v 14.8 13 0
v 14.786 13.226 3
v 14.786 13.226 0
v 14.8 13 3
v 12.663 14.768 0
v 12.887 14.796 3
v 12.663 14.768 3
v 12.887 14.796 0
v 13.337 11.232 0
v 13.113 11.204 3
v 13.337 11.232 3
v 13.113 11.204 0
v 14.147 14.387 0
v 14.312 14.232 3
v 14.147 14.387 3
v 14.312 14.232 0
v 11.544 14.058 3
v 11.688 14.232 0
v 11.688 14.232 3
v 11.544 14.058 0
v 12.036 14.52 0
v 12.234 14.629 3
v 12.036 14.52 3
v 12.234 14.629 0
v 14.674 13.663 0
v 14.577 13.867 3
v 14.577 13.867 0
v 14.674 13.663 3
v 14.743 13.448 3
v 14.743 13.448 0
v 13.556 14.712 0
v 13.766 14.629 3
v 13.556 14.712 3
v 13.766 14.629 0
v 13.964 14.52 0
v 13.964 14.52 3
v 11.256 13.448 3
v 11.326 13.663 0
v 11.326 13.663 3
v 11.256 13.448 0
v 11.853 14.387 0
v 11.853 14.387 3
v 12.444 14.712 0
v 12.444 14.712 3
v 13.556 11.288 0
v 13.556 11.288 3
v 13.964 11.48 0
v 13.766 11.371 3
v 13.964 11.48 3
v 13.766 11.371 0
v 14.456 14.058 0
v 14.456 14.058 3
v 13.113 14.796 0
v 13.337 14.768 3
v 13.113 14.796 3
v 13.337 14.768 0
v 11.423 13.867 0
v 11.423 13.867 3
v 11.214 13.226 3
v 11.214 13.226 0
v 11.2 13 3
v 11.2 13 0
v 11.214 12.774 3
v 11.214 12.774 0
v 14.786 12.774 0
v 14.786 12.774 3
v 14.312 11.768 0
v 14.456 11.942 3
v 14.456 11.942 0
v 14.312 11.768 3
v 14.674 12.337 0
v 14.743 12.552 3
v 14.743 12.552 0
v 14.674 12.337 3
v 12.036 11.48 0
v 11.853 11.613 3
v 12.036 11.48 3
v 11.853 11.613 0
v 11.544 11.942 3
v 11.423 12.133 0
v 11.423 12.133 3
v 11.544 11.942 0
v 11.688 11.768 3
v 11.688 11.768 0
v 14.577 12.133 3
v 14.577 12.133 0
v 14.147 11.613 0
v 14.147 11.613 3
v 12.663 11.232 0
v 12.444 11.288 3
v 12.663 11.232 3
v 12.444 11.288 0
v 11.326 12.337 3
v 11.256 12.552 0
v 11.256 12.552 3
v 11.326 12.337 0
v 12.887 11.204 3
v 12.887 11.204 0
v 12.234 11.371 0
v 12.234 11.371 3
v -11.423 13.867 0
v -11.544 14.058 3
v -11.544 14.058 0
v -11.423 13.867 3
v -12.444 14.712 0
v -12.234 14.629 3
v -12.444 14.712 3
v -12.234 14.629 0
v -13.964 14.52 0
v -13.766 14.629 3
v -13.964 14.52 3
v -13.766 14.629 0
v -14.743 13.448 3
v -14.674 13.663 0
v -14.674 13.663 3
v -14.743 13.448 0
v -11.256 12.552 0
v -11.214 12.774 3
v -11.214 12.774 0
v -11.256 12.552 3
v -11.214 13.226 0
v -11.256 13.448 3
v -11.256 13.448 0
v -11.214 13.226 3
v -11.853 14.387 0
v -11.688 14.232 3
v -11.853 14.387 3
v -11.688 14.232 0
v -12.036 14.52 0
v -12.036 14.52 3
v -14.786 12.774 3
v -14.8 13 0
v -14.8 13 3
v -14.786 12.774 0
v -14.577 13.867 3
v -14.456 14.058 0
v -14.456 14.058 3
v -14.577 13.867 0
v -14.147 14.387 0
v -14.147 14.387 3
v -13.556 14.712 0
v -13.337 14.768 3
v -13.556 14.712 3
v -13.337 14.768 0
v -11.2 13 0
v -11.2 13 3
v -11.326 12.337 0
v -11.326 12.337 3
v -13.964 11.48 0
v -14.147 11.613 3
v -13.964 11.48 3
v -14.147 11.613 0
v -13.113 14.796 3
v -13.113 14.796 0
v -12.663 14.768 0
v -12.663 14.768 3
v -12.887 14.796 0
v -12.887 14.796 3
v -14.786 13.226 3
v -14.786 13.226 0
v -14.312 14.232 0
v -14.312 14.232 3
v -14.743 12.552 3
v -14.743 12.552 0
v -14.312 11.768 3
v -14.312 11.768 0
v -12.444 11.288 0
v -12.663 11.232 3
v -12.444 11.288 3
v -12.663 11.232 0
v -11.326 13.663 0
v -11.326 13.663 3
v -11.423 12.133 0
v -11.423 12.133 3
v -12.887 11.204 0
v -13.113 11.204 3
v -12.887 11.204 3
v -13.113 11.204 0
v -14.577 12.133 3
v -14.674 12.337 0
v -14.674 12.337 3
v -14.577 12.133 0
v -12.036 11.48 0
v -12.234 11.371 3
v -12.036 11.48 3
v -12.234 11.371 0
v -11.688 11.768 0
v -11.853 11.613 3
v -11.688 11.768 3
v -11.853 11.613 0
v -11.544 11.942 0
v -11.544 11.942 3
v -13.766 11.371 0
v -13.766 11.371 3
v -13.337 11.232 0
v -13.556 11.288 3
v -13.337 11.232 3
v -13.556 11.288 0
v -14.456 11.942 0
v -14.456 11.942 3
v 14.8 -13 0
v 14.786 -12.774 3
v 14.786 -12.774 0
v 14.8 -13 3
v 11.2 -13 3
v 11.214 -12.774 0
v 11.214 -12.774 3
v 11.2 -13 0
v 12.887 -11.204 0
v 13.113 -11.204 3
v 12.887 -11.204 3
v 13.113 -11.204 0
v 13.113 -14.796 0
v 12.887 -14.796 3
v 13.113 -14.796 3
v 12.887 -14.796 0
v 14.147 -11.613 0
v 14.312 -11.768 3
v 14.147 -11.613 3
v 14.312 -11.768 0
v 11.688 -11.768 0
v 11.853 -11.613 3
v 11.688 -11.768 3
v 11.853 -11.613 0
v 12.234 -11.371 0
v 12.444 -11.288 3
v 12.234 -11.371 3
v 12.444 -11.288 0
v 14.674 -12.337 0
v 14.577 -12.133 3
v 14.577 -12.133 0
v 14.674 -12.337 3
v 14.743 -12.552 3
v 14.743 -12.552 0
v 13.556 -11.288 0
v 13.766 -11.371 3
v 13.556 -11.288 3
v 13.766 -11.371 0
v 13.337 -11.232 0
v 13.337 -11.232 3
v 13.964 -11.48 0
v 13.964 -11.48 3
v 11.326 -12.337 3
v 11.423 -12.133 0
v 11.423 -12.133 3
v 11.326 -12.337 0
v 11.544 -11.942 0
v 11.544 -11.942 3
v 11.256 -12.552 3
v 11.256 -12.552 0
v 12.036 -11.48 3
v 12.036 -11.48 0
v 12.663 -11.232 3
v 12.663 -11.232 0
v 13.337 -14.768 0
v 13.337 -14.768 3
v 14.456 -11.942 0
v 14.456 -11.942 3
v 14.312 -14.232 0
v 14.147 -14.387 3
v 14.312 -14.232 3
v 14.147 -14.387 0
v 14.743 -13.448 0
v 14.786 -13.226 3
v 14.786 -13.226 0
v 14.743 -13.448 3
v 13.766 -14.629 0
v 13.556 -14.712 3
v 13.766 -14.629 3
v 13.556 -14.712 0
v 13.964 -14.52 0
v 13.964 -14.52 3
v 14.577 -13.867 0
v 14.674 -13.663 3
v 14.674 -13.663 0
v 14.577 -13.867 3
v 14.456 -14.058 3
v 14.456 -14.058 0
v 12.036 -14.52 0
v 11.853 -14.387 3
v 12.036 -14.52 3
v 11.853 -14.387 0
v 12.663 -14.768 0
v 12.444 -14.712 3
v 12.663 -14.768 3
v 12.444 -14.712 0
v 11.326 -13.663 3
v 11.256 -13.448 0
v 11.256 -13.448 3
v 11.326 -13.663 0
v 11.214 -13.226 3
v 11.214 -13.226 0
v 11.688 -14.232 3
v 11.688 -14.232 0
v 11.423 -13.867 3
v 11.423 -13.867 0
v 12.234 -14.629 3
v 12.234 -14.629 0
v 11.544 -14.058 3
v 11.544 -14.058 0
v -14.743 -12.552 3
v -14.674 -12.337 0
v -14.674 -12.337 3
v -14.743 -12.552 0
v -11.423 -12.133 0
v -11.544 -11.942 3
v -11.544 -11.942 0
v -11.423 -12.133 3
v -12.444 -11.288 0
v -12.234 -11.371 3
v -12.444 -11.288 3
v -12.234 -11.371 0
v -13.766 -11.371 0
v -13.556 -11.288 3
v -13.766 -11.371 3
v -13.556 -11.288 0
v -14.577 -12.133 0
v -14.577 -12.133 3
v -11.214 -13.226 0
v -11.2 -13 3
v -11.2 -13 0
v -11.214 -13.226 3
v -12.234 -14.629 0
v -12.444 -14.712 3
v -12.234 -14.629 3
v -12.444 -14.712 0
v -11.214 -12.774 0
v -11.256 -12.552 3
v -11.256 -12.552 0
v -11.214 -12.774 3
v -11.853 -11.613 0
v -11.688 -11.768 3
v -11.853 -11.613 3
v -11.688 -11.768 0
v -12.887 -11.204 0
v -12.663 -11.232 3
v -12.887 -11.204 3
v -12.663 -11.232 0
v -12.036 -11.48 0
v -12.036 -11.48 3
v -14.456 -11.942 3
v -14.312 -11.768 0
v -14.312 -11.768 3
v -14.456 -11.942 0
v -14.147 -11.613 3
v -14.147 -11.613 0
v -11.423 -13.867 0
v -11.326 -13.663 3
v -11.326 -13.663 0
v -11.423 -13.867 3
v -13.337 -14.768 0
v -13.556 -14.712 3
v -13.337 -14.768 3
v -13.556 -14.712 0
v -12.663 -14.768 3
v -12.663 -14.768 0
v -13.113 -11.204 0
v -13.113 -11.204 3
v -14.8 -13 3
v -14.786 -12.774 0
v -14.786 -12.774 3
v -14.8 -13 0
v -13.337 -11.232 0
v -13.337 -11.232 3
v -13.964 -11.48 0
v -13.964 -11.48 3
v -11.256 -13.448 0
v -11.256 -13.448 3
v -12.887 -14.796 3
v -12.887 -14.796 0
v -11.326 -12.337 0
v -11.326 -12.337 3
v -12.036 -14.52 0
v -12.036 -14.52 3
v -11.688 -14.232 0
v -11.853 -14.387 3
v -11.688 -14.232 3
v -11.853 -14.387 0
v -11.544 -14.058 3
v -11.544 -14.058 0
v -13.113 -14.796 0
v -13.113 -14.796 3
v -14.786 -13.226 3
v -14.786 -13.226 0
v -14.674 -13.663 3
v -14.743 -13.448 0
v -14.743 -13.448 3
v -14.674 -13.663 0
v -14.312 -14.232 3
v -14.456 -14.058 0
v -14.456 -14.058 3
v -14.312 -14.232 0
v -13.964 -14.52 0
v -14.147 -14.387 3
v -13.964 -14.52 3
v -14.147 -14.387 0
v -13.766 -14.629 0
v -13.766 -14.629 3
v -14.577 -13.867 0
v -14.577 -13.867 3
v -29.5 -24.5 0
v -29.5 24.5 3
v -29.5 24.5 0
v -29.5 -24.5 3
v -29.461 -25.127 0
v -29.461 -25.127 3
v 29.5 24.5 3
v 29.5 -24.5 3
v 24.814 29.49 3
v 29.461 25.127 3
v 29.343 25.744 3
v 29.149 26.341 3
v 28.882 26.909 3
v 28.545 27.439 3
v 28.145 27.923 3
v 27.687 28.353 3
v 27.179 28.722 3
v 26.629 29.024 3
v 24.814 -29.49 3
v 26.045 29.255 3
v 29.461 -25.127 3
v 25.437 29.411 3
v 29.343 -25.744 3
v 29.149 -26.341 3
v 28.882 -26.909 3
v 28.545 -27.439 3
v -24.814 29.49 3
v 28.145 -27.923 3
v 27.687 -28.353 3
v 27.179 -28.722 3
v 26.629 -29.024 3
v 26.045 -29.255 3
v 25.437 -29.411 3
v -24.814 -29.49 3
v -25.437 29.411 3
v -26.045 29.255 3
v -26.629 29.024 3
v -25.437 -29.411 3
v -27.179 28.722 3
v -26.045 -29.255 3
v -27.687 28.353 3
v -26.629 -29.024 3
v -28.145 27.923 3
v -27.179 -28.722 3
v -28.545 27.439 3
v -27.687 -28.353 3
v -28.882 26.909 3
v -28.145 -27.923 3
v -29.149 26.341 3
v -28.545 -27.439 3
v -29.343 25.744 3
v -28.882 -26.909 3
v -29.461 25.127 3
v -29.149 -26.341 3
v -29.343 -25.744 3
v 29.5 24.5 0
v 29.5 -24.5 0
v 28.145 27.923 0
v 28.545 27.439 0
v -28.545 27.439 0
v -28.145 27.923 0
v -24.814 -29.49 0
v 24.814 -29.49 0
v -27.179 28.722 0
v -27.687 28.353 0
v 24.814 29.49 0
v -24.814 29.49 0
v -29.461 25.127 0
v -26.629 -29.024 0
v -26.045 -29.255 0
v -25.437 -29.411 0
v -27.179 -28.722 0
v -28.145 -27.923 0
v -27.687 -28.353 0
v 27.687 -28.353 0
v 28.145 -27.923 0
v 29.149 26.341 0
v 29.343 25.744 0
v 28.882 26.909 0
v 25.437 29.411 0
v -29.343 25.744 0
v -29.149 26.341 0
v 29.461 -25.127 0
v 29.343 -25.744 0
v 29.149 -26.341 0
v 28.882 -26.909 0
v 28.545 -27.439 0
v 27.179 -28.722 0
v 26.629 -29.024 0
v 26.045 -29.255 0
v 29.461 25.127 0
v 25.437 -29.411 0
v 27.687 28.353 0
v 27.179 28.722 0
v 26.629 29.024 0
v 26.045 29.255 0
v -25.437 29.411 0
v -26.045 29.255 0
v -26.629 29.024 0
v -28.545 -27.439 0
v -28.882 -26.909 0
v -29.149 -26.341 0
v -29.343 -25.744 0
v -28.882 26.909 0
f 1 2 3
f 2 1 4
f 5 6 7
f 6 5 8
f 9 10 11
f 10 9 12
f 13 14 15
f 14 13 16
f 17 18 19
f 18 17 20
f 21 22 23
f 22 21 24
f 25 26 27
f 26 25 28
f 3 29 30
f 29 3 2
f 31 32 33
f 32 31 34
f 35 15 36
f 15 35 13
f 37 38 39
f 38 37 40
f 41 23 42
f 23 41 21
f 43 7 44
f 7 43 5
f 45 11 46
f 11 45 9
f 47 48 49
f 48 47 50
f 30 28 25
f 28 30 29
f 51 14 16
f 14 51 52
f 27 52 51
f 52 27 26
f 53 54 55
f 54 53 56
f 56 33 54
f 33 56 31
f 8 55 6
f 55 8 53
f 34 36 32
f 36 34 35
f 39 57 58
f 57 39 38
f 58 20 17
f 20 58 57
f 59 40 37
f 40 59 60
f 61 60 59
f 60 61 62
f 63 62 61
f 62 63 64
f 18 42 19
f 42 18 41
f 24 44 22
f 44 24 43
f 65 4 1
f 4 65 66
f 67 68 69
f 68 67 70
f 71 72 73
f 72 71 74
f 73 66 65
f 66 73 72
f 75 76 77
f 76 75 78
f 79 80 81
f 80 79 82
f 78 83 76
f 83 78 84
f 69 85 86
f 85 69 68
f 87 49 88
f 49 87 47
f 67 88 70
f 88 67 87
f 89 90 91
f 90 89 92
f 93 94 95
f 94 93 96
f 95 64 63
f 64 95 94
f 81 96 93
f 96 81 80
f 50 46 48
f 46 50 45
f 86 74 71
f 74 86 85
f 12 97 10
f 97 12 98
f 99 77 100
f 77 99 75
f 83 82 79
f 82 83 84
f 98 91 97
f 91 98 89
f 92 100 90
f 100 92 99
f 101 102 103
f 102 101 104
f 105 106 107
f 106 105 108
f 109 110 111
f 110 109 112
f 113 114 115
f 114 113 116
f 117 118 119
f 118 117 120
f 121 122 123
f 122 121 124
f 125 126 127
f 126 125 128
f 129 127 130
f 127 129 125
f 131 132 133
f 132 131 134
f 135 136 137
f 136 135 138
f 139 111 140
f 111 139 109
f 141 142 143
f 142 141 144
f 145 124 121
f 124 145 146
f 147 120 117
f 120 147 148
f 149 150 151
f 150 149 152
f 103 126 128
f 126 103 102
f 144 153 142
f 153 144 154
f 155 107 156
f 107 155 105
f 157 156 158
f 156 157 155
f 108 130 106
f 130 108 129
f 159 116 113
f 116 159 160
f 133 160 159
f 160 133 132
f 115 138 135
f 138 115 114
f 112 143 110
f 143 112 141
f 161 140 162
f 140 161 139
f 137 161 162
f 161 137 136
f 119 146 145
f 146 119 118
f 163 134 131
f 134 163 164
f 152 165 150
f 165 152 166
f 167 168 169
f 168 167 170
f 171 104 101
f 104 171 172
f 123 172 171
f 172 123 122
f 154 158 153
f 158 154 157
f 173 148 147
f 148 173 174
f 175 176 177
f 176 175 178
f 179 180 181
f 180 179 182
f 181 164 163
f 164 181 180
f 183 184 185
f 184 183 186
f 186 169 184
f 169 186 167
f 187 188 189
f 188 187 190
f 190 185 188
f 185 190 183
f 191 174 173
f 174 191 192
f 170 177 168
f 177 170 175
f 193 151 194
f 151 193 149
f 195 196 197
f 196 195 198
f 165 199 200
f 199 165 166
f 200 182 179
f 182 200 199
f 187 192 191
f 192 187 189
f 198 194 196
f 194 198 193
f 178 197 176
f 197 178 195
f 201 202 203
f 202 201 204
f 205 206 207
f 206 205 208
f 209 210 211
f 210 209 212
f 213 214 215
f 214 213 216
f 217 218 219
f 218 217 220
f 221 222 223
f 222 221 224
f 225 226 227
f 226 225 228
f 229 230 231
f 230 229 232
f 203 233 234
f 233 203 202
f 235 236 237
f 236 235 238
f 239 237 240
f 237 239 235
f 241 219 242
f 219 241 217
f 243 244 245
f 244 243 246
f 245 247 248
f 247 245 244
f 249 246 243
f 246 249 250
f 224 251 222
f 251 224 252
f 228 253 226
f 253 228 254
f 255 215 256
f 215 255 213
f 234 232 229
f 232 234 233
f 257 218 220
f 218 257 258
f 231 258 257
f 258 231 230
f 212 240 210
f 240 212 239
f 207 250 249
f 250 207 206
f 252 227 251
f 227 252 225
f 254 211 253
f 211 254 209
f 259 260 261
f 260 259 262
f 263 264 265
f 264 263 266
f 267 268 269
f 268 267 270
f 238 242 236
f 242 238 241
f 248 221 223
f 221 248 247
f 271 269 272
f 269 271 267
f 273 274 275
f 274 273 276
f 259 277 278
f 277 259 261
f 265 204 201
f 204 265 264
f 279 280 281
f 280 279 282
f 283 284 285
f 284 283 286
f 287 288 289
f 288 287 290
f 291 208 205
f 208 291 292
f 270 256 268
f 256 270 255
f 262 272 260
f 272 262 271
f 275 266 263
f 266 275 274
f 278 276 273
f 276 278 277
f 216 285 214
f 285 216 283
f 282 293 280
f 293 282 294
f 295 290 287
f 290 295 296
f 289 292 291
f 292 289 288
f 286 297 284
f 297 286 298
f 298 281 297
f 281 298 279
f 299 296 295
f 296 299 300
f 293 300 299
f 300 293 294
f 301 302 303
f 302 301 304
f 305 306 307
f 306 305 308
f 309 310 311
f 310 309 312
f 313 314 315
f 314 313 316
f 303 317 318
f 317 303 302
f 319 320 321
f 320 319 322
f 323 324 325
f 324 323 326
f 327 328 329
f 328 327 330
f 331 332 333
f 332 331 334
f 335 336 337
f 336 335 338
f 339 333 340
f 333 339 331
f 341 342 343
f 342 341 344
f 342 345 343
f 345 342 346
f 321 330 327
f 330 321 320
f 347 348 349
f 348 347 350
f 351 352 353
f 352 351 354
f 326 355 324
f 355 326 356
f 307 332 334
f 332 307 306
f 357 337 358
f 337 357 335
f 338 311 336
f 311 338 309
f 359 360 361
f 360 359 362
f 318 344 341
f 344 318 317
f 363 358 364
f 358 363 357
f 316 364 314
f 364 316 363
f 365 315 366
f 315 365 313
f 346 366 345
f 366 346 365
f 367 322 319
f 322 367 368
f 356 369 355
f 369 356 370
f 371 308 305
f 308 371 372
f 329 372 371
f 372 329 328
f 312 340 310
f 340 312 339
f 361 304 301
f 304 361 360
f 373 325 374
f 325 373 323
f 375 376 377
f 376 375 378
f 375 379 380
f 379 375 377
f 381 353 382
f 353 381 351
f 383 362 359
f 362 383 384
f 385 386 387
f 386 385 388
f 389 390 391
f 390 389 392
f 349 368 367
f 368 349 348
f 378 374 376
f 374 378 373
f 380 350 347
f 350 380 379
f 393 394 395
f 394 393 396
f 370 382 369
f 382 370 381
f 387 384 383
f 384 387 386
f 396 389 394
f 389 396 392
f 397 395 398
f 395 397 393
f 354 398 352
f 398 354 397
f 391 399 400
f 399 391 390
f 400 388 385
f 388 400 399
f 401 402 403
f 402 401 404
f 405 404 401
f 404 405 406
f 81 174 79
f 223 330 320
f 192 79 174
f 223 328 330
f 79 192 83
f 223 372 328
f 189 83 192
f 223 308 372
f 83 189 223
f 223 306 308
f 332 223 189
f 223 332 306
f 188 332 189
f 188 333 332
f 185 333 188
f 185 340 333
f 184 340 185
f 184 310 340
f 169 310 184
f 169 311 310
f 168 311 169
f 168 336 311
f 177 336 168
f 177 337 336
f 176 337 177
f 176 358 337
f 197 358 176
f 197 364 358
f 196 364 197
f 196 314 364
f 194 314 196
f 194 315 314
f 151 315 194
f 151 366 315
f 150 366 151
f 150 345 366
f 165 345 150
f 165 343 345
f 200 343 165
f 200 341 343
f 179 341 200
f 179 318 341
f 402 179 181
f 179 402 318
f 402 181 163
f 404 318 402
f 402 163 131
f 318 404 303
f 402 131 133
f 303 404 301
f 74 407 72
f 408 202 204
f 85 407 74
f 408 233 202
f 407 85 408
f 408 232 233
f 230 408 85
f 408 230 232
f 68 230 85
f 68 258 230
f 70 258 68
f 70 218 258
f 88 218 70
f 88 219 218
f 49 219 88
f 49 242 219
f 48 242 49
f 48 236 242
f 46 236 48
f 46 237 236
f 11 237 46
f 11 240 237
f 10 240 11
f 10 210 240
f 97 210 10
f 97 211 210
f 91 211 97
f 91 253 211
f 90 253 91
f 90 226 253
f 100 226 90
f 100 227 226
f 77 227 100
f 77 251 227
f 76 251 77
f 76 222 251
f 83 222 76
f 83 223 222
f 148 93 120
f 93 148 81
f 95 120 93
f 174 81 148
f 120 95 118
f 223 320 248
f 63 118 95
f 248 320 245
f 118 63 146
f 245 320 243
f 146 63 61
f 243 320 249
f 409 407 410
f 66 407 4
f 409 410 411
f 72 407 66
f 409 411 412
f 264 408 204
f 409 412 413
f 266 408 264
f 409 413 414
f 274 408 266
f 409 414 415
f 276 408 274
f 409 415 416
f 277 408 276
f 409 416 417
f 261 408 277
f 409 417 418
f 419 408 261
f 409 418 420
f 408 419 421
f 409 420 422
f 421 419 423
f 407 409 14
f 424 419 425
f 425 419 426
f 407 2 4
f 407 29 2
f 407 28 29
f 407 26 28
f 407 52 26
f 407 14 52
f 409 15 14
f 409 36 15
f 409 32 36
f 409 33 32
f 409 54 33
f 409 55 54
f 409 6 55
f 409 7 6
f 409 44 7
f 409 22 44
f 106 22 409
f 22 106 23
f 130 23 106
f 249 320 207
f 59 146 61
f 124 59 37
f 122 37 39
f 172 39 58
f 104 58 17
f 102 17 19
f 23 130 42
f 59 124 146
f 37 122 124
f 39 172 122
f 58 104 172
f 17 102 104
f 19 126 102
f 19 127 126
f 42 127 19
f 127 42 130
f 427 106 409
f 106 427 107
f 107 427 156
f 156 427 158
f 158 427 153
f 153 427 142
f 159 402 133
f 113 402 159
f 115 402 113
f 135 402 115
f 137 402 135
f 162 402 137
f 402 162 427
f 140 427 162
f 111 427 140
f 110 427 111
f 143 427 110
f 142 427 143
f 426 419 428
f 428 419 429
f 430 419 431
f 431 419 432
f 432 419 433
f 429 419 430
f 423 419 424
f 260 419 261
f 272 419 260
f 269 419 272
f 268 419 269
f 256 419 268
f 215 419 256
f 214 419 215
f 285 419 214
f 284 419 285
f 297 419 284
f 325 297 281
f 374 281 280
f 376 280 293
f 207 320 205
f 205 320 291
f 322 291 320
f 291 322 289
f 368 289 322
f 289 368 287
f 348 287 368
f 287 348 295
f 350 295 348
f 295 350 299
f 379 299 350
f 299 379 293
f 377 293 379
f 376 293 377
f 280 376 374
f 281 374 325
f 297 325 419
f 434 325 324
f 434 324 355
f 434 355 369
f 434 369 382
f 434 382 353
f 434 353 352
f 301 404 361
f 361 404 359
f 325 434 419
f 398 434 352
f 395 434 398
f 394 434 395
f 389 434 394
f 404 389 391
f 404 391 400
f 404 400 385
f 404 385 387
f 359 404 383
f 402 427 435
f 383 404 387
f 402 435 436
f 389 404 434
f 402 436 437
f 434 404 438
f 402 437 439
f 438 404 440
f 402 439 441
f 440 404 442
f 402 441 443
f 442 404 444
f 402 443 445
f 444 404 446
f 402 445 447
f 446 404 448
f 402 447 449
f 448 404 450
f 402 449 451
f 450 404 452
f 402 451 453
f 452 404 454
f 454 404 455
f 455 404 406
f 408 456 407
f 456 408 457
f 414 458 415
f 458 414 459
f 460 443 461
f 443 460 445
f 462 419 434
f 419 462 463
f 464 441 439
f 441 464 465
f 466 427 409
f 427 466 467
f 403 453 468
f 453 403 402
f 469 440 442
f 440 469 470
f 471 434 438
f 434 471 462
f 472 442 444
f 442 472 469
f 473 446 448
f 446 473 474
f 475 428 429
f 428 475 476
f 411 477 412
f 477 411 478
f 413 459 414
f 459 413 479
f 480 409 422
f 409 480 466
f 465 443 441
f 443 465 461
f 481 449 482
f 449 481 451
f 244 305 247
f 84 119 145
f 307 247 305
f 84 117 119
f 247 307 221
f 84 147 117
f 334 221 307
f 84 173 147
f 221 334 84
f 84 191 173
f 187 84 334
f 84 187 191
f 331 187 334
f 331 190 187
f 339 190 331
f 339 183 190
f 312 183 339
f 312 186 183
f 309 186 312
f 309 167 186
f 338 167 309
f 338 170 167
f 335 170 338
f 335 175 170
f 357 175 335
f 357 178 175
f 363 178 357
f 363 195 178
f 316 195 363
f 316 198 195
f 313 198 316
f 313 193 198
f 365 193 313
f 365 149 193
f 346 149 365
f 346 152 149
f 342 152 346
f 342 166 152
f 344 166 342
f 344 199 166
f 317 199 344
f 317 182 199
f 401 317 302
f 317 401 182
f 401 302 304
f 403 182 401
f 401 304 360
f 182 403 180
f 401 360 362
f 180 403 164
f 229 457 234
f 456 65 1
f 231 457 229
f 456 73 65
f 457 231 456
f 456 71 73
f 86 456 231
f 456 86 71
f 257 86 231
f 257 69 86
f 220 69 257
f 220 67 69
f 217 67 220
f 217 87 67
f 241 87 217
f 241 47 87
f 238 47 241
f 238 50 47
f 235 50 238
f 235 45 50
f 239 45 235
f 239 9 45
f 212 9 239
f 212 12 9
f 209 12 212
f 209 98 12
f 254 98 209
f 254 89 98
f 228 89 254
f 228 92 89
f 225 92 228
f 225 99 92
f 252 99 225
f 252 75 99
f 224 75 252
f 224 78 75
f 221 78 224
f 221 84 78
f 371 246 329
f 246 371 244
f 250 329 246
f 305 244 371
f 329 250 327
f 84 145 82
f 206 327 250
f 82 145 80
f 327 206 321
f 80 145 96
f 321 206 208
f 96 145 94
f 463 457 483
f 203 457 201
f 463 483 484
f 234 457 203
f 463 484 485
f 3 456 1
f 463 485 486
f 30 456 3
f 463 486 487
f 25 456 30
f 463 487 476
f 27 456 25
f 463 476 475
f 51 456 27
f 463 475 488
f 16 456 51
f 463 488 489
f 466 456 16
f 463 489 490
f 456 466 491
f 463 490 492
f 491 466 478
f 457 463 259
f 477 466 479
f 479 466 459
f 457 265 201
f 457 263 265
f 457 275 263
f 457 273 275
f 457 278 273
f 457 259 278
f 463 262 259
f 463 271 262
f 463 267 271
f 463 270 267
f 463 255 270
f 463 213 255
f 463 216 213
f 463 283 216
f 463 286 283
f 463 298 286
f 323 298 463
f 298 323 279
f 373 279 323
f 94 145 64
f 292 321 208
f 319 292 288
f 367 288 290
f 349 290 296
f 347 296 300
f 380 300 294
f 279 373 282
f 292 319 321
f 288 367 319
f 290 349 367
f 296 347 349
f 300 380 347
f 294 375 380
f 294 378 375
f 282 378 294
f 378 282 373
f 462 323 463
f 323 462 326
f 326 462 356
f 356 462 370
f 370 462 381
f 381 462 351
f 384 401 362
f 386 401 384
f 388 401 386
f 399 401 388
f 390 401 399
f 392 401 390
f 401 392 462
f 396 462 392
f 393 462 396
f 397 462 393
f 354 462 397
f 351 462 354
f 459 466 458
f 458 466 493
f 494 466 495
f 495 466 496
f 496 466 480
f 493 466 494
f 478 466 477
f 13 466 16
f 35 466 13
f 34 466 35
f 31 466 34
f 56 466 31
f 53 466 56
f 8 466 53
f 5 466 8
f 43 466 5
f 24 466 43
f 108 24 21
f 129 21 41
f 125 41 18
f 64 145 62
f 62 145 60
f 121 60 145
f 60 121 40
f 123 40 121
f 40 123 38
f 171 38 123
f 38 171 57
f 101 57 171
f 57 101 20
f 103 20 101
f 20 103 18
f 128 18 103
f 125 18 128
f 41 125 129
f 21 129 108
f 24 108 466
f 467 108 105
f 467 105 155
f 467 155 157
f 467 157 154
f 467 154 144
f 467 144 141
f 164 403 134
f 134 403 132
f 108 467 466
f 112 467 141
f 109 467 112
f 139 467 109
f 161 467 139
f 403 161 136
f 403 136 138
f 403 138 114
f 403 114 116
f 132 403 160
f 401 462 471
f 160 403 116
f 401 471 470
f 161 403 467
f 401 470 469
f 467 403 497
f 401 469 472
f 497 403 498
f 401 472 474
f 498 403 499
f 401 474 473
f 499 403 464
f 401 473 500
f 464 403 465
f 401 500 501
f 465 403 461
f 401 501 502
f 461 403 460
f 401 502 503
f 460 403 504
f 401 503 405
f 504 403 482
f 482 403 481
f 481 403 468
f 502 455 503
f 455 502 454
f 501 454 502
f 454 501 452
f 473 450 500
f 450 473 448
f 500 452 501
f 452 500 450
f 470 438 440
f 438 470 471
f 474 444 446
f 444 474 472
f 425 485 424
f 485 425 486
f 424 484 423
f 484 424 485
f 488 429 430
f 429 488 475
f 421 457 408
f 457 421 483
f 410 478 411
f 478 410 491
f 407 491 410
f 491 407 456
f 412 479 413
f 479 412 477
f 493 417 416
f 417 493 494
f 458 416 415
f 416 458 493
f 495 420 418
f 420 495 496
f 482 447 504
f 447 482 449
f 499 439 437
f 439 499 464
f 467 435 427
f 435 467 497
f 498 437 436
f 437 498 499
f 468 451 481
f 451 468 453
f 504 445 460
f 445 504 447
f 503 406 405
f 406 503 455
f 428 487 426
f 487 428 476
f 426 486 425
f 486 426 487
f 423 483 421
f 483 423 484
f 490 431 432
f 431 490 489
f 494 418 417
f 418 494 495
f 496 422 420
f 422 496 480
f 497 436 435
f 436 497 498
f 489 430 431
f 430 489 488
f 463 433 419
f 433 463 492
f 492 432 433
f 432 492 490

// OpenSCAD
$fn = 50;


difference() {
	union() {
		translate(v = [0, 0, 0]) {
			rotate(a = [0, 0, 0]) {
				hull() {
					translate(v = [-24.5000000000, 24.5000000000, 0]) {
						rotate(a = [0, 0, 0]) {
							translate(v = [0, 0, 0]) {
								rotate(a = [0, 0, 0]) {
									cylinder(h = 3, r = 5);
								}
							}
						}
					}
					translate(v = [24.5000000000, 24.5000000000, 0]) {
						rotate(a = [0, 0, 0]) {
							translate(v = [0, 0, 0]) {
								rotate(a = [0, 0, 0]) {
									cylinder(h = 3, r = 5);
								}
							}
						}
					}
					translate(v = [-24.5000000000, -24.5000000000, 0]) {
						rotate(a = [0, 0, 0]) {
							translate(v = [0, 0, 0]) {
								rotate(a = [0, 0, 0]) {
									cylinder(h = 3, r = 5);
								}
							}
						}
					}
					translate(v = [24.5000000000, -24.5000000000, 0]) {
						rotate(a = [0, 0, 0]) {
							translate(v = [0, 0, 0]) {
								rotate(a = [0, 0, 0]) {
									cylinder(h = 3, r = 5);
								}
							}
						}
					}
				}
			}
		}
	}
	union() {
		translate(v = [13.0000000000, 13.0000000000, -125.0000000000]) {
			rotate(a = [0, 0, 0]) {
				cylinder(h = 250, r = 1.8000000000);
			}
		}
		translate(v = [-13.0000000000, 13.0000000000, -125.0000000000]) {
			rotate(a = [0, 0, 0]) {
				cylinder(h = 250, r = 1.8000000000);
			}
		}
		translate(v = [13.0000000000, -13.0000000000, -125.0000000000]) {
			rotate(a = [0, 0, 0]) {
				cylinder(h = 250, r = 1.8000000000);
			}
		}
		translate(v = [-13.0000000000, -13.0000000000, -125.0000000000]) {
			rotate(a = [0, 0, 0]) {
				cylinder(h = 250, r = 1.8000000000);
			}
		}
	}
}
